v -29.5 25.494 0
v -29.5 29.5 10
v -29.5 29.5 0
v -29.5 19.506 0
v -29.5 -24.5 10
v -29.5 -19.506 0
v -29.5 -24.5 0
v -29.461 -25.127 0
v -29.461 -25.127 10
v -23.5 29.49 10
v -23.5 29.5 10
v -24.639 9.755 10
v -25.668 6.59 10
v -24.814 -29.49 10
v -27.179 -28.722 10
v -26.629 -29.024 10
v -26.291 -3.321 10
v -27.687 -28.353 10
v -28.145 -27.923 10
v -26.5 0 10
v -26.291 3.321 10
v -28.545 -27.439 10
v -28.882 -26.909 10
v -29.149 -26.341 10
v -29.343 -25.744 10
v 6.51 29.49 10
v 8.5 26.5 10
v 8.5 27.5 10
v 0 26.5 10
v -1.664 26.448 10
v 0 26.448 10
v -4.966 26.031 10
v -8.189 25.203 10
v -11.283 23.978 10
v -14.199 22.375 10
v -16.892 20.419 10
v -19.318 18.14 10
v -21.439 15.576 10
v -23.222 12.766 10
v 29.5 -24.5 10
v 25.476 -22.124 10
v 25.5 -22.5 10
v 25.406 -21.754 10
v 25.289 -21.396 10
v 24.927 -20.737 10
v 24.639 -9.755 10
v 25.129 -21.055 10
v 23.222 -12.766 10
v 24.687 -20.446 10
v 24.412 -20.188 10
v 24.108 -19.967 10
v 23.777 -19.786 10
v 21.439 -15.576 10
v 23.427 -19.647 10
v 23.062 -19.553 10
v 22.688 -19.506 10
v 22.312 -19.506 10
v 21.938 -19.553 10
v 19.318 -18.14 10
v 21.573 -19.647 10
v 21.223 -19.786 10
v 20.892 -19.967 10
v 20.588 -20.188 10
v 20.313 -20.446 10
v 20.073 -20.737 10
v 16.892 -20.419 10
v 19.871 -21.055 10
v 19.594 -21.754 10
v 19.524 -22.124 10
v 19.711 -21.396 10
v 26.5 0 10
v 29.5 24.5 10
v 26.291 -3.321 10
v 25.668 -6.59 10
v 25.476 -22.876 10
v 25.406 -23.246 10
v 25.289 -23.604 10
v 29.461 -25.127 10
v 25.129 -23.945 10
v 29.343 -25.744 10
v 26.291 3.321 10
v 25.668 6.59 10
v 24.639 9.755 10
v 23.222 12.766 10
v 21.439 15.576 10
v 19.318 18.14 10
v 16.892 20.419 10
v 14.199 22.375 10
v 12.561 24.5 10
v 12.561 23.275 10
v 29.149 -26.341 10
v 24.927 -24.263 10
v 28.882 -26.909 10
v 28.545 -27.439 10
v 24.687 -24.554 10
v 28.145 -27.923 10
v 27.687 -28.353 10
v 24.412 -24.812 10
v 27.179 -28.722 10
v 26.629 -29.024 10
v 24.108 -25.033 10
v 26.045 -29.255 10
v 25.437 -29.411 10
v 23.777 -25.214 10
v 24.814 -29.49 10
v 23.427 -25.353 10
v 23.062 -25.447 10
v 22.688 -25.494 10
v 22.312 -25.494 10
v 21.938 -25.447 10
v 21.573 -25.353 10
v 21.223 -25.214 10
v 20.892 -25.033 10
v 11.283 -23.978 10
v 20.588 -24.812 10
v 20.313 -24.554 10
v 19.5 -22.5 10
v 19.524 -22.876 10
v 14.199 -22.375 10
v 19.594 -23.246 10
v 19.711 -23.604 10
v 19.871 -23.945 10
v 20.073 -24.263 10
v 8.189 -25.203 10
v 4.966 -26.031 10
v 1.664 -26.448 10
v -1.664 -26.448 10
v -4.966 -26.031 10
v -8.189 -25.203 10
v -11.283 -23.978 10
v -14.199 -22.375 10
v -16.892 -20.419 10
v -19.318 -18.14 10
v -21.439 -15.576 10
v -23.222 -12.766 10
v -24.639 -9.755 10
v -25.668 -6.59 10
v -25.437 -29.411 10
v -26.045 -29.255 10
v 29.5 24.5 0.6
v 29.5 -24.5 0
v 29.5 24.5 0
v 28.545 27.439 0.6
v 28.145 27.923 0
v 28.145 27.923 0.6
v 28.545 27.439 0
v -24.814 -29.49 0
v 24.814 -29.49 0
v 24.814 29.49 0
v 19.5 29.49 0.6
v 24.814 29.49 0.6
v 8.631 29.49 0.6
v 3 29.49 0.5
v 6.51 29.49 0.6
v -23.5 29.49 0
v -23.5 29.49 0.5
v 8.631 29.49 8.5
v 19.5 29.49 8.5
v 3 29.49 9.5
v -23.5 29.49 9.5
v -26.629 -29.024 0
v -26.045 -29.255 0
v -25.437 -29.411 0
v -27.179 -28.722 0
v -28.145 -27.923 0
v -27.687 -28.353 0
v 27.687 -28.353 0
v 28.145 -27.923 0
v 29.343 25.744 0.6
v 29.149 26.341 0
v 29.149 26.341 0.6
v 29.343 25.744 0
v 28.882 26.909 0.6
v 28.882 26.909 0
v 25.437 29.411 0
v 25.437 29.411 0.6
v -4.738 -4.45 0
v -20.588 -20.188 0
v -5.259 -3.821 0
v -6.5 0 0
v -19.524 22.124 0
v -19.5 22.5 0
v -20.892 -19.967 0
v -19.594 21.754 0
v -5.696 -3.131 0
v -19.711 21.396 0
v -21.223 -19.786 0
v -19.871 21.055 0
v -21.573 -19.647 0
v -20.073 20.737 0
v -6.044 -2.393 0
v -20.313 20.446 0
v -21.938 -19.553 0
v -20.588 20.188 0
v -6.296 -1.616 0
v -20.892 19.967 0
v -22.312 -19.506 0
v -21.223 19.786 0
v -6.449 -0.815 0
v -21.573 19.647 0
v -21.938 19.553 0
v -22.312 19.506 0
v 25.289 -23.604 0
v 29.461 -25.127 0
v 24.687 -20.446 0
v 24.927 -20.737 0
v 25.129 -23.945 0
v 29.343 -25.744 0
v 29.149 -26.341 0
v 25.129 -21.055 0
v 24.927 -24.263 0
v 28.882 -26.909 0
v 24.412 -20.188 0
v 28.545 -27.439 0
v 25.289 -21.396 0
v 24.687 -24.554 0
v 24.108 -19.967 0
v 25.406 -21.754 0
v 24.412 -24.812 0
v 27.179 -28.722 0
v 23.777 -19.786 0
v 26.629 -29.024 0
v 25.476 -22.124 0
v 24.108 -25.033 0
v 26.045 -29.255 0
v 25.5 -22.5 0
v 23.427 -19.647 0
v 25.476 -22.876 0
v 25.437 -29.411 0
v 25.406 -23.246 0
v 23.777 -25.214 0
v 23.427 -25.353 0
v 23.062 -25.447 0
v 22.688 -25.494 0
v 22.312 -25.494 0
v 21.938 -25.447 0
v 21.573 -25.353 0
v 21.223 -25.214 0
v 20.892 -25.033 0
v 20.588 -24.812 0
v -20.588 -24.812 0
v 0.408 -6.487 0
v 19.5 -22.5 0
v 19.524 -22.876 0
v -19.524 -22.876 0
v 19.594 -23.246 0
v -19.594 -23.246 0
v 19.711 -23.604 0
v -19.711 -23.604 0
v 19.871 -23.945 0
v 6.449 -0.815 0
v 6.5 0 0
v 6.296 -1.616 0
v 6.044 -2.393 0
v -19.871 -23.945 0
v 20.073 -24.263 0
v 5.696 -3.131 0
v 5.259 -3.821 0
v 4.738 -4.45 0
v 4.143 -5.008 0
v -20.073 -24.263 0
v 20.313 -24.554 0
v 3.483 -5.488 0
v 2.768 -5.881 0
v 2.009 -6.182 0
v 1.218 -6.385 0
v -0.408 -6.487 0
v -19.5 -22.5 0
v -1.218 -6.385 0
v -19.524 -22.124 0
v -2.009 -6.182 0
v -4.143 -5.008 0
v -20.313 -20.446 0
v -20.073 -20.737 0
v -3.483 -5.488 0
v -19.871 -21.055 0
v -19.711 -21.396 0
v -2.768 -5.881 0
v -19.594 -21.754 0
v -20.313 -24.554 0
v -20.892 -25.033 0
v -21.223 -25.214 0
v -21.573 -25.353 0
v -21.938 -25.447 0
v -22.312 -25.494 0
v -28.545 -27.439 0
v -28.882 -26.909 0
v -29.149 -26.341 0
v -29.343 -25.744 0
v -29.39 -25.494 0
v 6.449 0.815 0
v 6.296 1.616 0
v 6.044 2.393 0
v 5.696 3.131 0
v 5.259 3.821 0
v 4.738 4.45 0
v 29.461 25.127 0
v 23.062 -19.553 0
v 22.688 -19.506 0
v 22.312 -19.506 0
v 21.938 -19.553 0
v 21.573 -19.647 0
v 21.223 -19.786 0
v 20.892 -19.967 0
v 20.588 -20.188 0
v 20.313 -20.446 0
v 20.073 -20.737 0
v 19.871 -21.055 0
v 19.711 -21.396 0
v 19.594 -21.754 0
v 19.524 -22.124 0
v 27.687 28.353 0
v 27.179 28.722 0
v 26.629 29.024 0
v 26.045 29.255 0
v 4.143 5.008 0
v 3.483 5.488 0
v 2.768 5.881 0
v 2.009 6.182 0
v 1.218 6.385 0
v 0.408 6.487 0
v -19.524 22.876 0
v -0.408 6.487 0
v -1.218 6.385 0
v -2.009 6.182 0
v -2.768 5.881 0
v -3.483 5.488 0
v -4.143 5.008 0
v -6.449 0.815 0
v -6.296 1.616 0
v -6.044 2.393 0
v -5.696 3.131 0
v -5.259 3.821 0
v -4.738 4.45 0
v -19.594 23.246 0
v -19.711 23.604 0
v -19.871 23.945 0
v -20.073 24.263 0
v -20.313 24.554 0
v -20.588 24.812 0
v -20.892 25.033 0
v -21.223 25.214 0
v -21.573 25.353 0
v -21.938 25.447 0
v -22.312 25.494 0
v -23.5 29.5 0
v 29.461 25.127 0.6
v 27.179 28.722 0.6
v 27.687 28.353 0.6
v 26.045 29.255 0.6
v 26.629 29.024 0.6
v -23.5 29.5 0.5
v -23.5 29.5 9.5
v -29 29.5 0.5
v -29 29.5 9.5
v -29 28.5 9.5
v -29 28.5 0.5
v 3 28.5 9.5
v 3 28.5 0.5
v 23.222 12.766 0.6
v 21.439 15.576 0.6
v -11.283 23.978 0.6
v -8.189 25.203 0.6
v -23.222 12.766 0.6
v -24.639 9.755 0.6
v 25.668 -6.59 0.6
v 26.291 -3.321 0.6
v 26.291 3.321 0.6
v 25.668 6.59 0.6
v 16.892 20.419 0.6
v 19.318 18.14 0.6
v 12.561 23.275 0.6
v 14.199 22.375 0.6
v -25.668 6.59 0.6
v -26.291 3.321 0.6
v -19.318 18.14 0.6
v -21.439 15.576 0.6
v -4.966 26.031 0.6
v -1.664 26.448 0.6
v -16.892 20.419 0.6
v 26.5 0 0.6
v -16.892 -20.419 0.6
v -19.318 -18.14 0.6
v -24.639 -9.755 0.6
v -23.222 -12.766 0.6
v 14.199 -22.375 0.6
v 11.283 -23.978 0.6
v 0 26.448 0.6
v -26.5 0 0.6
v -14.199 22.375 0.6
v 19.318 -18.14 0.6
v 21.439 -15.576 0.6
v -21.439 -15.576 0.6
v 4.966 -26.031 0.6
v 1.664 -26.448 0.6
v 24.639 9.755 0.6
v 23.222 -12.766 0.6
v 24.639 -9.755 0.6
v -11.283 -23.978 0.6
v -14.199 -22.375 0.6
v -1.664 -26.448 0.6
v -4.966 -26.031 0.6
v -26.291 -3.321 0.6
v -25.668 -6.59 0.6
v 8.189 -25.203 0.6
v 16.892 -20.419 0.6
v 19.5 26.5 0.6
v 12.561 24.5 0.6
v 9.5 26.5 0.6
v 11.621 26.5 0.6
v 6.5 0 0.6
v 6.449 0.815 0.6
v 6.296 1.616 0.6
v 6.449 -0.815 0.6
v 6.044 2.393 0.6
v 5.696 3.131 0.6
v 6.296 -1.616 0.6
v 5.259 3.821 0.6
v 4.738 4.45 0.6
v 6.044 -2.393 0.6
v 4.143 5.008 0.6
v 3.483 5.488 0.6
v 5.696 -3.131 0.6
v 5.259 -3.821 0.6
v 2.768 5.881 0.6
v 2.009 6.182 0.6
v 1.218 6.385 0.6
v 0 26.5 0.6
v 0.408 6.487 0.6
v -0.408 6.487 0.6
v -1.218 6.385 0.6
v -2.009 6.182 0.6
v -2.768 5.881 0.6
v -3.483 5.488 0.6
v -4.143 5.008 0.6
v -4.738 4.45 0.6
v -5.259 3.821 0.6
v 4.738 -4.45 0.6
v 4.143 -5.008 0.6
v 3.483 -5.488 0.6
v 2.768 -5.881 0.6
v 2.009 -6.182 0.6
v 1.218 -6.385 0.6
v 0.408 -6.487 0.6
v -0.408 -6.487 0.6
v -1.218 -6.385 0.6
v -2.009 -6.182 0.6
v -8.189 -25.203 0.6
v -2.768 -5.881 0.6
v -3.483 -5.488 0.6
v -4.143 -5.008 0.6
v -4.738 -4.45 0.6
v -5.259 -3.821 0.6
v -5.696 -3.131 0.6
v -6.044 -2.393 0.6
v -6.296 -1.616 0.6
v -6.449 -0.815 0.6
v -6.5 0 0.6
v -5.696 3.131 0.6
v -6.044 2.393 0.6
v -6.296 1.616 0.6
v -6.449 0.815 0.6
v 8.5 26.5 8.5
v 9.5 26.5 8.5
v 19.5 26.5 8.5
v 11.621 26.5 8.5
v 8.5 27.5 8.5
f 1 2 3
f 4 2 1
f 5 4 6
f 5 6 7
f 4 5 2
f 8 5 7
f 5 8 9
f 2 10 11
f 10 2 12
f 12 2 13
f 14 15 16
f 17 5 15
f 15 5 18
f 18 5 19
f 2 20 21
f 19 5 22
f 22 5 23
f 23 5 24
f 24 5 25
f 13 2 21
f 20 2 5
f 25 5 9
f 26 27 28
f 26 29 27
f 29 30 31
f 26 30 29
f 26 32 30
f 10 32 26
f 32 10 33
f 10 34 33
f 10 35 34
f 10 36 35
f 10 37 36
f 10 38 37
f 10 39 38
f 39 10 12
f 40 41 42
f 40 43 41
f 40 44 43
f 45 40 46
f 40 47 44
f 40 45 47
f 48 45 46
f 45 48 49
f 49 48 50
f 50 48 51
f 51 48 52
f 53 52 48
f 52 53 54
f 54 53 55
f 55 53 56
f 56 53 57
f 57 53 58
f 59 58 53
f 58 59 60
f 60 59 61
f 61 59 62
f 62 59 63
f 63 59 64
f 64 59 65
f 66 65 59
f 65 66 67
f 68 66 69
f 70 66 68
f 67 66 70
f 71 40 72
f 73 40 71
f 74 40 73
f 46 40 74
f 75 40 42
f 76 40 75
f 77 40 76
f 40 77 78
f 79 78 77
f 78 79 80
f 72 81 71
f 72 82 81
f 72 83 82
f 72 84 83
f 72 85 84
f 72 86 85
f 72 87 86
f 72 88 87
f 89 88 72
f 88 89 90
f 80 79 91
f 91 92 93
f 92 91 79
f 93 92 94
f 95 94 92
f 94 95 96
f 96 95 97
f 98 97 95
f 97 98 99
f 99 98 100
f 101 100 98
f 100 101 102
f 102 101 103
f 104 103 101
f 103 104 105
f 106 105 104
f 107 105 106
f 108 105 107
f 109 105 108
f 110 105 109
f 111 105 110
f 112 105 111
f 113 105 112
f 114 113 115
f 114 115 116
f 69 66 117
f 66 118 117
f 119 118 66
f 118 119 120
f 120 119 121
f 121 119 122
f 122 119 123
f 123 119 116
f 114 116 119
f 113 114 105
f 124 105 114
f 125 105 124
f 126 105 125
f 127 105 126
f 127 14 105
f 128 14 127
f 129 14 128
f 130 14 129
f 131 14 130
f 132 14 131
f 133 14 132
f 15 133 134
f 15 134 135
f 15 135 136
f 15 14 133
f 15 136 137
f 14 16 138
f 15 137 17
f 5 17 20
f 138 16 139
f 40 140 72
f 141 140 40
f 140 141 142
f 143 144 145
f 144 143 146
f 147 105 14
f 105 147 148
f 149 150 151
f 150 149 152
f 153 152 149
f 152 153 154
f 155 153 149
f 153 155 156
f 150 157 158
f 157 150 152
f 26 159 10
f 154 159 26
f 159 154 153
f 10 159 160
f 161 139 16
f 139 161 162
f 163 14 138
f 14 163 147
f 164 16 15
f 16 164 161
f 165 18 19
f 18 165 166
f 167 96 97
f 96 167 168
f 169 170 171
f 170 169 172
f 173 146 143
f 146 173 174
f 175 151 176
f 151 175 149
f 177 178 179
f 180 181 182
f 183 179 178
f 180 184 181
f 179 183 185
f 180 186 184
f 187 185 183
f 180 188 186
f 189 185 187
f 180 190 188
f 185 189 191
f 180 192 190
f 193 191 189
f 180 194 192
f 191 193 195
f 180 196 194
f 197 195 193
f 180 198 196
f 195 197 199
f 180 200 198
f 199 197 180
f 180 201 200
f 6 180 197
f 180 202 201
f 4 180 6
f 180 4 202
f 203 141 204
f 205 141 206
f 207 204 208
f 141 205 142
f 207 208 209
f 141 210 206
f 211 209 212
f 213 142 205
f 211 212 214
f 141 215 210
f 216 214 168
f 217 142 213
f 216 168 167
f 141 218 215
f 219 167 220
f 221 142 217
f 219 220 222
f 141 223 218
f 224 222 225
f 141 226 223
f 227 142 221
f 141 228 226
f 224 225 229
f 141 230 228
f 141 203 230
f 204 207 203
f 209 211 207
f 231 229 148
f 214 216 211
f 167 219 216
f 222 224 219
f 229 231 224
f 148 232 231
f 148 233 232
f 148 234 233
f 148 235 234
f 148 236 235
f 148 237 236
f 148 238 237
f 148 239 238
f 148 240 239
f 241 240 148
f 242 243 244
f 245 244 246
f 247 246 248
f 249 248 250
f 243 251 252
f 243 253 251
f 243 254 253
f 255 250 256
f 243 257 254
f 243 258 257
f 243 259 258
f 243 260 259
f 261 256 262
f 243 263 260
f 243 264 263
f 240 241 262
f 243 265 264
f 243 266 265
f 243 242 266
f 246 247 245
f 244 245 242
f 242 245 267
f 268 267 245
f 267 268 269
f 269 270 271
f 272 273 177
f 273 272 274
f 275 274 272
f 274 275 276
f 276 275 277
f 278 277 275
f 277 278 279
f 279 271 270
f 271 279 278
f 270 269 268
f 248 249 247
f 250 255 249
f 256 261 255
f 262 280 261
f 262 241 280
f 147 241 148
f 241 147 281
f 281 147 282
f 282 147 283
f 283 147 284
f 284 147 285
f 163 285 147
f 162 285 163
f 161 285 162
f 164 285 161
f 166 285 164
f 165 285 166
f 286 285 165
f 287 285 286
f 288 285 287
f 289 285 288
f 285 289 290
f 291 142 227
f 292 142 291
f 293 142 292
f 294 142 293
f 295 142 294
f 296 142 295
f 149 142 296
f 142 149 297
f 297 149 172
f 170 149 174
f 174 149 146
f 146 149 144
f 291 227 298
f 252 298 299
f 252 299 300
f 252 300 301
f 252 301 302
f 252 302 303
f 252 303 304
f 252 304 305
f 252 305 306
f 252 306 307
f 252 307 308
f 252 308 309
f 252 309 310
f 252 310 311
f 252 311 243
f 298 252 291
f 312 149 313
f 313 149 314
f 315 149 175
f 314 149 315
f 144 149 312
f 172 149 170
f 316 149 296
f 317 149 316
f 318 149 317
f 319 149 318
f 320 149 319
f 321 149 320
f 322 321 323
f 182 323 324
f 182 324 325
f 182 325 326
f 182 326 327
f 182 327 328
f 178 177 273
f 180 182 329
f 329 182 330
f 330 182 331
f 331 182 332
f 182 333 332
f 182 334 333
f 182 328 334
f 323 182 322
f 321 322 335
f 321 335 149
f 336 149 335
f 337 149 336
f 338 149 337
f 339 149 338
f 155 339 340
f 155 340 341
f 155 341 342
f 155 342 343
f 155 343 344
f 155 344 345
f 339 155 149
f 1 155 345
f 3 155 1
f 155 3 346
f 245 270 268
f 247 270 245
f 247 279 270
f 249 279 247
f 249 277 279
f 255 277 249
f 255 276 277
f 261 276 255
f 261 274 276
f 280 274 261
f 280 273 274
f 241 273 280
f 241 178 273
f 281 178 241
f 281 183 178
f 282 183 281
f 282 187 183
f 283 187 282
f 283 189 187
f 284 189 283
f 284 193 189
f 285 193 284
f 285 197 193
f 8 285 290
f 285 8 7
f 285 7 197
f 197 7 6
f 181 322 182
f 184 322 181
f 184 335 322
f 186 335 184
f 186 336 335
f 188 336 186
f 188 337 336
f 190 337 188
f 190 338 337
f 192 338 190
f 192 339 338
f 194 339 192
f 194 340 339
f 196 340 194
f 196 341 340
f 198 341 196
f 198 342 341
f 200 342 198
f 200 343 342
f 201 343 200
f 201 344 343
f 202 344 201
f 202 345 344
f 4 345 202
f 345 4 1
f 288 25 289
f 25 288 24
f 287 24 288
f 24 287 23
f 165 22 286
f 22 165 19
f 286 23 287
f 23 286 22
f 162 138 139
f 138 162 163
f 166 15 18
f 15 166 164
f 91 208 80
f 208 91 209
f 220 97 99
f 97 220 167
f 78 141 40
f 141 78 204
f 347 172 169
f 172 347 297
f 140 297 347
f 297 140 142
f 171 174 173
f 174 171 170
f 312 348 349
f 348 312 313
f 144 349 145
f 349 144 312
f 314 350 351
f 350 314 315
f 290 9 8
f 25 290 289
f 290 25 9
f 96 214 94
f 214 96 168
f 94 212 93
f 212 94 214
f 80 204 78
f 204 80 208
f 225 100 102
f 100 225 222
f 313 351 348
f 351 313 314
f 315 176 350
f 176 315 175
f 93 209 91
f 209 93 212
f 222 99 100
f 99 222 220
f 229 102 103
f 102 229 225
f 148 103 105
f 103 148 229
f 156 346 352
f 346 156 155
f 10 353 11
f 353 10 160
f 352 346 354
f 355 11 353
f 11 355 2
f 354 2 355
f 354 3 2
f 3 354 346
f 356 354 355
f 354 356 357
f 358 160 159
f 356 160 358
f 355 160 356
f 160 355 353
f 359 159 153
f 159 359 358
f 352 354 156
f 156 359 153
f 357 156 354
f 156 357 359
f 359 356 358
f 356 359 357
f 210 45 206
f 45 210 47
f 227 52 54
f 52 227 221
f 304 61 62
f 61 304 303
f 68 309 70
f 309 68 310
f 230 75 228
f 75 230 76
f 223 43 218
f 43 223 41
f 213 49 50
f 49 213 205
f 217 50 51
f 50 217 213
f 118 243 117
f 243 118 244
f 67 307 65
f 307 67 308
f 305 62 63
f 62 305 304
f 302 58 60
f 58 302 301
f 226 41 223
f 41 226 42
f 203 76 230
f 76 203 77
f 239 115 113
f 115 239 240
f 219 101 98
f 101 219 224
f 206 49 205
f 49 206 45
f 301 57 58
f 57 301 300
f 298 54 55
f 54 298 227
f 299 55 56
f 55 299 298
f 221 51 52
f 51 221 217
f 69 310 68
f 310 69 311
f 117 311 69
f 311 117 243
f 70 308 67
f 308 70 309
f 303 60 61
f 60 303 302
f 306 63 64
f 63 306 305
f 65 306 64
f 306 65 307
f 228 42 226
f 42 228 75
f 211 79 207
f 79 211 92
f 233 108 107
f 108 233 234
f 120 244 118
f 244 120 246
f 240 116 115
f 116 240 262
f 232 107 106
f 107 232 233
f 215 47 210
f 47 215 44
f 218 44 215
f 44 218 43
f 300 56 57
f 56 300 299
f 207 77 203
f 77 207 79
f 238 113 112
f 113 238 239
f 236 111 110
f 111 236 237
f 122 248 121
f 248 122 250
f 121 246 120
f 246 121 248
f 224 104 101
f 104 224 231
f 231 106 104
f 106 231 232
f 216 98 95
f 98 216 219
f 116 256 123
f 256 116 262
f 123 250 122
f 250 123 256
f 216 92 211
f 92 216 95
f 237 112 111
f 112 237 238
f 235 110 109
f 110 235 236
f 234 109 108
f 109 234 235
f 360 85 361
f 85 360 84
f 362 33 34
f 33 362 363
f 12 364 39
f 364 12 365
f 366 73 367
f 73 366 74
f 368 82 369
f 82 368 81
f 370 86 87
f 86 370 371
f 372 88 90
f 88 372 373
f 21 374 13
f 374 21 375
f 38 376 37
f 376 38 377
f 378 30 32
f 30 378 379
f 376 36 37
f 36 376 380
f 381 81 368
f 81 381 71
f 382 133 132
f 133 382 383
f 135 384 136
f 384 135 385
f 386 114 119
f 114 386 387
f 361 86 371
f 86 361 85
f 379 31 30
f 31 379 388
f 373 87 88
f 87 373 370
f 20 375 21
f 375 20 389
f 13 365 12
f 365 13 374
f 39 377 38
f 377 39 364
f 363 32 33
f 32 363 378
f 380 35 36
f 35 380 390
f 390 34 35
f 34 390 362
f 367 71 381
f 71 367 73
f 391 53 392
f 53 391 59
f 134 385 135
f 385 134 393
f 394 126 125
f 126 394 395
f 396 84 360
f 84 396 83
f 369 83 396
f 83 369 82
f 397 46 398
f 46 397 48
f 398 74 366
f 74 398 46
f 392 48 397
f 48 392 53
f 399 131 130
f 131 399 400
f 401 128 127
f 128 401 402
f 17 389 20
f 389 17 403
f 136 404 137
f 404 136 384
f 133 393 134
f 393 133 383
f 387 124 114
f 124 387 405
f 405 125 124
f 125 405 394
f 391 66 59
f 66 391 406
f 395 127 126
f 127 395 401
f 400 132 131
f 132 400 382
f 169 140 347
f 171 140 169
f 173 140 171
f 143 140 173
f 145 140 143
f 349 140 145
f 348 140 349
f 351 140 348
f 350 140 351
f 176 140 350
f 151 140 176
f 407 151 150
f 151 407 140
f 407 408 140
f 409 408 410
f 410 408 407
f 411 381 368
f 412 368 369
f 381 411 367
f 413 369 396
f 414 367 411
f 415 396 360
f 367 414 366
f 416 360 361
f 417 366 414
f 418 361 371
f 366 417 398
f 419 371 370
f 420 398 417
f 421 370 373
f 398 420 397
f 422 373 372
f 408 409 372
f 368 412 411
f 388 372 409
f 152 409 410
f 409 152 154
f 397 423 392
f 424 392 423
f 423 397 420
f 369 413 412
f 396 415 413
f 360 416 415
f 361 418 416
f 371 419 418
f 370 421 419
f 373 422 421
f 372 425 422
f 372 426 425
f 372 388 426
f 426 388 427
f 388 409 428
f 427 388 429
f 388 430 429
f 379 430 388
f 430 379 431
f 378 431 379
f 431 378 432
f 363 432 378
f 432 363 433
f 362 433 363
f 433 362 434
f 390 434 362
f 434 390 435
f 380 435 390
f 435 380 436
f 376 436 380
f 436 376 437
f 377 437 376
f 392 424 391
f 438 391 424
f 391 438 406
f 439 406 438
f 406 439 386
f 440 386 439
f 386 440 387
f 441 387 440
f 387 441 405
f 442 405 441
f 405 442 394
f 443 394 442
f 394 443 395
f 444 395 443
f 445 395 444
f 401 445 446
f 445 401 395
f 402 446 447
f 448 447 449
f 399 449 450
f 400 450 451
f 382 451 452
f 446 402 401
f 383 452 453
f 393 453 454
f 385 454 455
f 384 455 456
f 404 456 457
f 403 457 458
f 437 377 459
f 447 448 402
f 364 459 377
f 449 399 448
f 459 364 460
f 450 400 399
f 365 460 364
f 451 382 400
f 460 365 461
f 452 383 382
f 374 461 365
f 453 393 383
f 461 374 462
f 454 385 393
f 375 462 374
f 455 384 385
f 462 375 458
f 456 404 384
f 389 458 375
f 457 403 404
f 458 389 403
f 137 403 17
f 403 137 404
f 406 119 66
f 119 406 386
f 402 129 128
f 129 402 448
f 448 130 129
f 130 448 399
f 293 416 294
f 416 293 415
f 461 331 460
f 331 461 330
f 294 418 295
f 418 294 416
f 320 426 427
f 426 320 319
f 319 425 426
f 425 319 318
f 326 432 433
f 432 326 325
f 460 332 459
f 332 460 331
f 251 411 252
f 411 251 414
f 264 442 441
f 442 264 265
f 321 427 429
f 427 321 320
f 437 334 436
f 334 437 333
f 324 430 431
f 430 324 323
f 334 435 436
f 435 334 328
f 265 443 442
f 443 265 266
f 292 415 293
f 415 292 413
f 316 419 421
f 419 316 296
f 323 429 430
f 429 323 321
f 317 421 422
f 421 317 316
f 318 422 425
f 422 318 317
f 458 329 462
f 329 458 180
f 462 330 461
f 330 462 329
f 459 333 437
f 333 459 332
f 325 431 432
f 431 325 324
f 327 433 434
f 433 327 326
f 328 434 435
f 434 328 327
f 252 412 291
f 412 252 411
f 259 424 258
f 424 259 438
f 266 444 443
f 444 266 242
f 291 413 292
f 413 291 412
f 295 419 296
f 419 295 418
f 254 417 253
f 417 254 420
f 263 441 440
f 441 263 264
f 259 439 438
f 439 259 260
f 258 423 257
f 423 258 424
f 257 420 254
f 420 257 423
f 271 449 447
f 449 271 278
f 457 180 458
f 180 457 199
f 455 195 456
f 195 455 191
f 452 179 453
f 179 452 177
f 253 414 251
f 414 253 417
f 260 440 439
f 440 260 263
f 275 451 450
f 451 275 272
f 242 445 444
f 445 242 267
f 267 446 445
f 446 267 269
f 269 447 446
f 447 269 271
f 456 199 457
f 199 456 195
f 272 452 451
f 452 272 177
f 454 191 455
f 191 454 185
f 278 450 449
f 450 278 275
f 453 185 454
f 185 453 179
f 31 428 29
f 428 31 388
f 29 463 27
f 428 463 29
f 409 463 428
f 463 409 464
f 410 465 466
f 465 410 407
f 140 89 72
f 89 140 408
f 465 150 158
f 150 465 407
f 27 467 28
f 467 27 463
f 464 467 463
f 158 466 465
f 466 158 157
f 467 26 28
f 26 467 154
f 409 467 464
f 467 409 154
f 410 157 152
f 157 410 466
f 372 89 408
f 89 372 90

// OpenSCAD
$fn = 50;


difference() {
	union() {
		hull() {
			translate(v = [-24.5000000000, 24.5000000000, 0]) {
				cylinder(h = 10, r = 5);
			}
			translate(v = [24.5000000000, 24.5000000000, 0]) {
				cylinder(h = 10, r = 5);
			}
			translate(v = [-24.5000000000, -24.5000000000, 0]) {
				cylinder(h = 10, r = 5);
			}
			translate(v = [24.5000000000, -24.5000000000, 0]) {
				cylinder(h = 10, r = 5);
			}
		}
		translate(v = [-29.5000000000, 23.5000000000, 0]) {
			cube(size = [6, 6, 10]);
		}
	}
	union() {
		translate(v = [-30.0000000000, -22.5000000000, -250.0000000000]) {
			rotate(a = [0, 0, 0]) {
				difference() {
					union() {
						hull() {
							translate(v = [7.5000000000, 0, 0]) {
								cylinder(h = 250, r = 3.0000000000, r1 = 3.0000000000, r2 = 3.0000000000);
							}
							translate(v = [-7.5000000000, 0, 0]) {
								cylinder(h = 250, r = 3.0000000000, r1 = 3.0000000000, r2 = 3.0000000000);
							}
						}
					}
					union();
				}
			}
		}
		translate(v = [-30.0000000000, 22.5000000000, -250.0000000000]) {
			rotate(a = [0, 0, 0]) {
				difference() {
					union() {
						hull() {
							translate(v = [7.5000000000, 0, 0]) {
								cylinder(h = 250, r = 3.0000000000, r1 = 3.0000000000, r2 = 3.0000000000);
							}
							translate(v = [-7.5000000000, 0, 0]) {
								cylinder(h = 250, r = 3.0000000000, r1 = 3.0000000000, r2 = 3.0000000000);
							}
						}
					}
					union();
				}
			}
		}
		translate(v = [-29.0000000000, 28.5000000000, 0.5000000000]) {
			cube(size = [32, 1, 9.0000000000]);
		}
		translate(v = [22.5000000000, -22.5000000000, -50.0000000000]) {
			cylinder(h = 100, r = 3.0000000000);
		}
		translate(v = [0, 0, 0.6000000000]) {
			cylinder(h = 12.4000000000, r = 26.5000000000);
		}
		translate(v = [0, 0, -5.0000000000]) {
			cylinder(h = 10, r = 6.5000000000);
		}
		translate(v = [0.0000000000, 24.5000000000, 0.6000000000]) {
			cube(size = [29.5000000000, 2, 12.4000000000]);
		}
		translate(v = [19.5000000000, 24.5000000000, 0.6000000000]) {
			cube(size = [10, 5, 12.4000000000]);
		}
		translate(v = [8.5000000000, 24.5000000000, 8.5000000000]) {
			cube(size = [21, 5, 1.5000000000]);
		}
		translate(v = [5.7500000000, 30.2500000000, 0.6000000000]) {
			rotate(a = [0, 0, -45]) {
				cube(size = [7.5000000000, 1.5000000000, 12.4000000000]);
			}
		}
		translate(v = [5.0610000000, 22.5000000000, 0.6000000000]) {
			cube(size = [7.5000000000, 2, 9.4000000000]);
		}
	}
}
